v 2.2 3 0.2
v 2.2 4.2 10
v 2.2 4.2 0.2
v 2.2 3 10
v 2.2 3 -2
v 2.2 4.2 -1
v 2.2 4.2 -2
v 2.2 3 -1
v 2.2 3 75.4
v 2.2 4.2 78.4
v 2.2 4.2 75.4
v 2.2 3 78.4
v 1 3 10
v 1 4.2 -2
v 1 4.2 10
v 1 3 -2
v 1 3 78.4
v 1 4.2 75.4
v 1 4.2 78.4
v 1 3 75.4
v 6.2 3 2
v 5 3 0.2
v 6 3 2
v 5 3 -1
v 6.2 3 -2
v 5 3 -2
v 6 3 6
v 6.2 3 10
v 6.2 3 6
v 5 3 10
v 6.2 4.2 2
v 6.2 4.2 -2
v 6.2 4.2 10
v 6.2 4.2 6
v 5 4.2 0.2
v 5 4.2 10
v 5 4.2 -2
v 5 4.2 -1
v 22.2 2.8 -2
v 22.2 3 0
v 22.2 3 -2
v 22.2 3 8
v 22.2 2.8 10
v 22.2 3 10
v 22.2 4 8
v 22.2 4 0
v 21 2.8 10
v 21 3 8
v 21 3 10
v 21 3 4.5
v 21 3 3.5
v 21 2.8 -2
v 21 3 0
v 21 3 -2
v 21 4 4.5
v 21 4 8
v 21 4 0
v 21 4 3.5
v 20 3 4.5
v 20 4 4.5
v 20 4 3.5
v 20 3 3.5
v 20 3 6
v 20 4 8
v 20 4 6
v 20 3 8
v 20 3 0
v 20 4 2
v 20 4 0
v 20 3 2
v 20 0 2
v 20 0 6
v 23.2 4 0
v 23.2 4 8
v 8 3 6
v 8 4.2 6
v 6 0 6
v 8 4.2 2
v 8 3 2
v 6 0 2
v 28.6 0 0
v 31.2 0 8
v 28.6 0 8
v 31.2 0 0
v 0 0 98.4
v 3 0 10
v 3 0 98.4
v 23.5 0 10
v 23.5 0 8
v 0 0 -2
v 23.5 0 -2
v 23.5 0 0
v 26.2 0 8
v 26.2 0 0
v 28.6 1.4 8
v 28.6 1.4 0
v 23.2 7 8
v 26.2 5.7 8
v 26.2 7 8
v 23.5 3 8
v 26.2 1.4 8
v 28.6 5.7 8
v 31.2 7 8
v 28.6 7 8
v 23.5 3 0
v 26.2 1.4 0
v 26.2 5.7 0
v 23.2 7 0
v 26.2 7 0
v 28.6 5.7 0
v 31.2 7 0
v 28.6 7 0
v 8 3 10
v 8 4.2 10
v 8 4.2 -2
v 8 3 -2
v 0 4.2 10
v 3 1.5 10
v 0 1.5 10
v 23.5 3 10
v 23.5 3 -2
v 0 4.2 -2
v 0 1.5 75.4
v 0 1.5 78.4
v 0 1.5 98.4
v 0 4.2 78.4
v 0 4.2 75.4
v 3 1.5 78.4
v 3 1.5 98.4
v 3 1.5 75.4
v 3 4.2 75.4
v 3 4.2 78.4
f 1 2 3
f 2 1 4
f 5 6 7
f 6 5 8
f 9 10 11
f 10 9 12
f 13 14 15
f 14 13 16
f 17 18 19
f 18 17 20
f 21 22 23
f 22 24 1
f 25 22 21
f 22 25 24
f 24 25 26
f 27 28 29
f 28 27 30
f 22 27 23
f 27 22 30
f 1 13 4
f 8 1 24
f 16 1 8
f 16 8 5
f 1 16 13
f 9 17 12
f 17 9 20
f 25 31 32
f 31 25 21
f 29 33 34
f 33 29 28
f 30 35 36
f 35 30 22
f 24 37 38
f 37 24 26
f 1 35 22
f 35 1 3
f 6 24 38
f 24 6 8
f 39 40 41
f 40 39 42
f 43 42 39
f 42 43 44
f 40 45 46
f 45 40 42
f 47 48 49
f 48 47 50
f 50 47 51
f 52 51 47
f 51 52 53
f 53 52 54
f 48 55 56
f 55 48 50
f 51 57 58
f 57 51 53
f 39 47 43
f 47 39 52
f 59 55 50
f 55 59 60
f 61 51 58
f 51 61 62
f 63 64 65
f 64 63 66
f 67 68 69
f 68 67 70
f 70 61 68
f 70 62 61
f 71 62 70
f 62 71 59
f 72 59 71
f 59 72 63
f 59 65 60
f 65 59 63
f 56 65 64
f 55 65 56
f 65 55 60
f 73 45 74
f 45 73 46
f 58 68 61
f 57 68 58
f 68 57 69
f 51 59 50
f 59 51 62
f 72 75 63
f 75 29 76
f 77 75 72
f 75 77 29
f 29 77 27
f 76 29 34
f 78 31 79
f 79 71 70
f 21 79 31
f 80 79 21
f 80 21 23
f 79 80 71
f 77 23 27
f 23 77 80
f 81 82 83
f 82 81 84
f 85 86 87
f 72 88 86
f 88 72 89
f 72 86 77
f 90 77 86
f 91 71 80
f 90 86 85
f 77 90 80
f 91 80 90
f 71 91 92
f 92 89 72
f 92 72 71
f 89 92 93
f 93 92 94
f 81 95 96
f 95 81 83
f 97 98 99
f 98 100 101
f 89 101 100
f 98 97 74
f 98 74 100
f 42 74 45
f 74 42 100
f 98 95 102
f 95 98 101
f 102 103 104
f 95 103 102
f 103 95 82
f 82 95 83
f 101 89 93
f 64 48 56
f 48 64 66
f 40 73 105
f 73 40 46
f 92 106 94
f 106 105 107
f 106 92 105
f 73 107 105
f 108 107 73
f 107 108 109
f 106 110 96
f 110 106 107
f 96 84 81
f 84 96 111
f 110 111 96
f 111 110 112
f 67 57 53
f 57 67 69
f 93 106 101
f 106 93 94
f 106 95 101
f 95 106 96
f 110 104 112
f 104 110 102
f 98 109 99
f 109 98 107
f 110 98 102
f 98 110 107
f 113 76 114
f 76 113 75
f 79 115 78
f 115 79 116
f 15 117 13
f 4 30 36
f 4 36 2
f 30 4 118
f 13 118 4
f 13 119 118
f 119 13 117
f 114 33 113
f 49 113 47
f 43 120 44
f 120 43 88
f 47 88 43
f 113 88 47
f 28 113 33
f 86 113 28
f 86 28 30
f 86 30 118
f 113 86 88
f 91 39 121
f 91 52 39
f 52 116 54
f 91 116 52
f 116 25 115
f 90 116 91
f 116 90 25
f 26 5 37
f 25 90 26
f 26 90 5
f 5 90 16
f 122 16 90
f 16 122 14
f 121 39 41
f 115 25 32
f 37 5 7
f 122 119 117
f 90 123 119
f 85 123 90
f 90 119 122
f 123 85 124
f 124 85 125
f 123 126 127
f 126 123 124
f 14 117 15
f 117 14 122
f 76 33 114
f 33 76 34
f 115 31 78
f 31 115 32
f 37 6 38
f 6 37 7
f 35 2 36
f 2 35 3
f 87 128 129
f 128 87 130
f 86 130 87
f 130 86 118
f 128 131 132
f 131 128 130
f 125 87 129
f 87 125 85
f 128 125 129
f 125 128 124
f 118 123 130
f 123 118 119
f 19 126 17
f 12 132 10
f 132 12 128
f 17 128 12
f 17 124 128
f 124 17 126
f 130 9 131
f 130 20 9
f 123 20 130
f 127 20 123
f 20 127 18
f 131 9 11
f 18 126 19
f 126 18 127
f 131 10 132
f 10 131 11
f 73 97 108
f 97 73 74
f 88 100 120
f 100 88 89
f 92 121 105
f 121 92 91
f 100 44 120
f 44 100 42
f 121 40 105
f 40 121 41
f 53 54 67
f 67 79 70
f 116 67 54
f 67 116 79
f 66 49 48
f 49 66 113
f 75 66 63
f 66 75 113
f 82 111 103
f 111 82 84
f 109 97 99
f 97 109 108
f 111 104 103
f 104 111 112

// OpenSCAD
//  Support Antenne Type J Pole V1
//   réglable
// Par Rpx màj du 5/9/2018

fil=1.2;			// diametre du fil
supp=fil+(2*1);//épaisseur supports

render(convexity = 10) {

difference() {

// Partie pleine
union() {
//Ecart diplole centre
translate([0,0,-2]){
cube(size = [8,3+fil,12], center = false);
}
//Branche diplole inf
//translate([0,0,-30]){
//cube(size = [3,1.5,29], center = false);
//}
//Support diplole inf
//translate([0,0,-25]){
//cube(size = [3,3+fil,3], center = false);
//}
//Branche diplole sup
translate([0,0,(2*fil)+6]){
cube(size = [3,1.5,90], center = false);
}
//Support diplole sup
translate([0,0,(2*fil)+6+70-3]){
cube(size = [3,3+fil,3], center = false);
}
//Support reflecteur
translate([20,0,0]){
cube(size = [supp,(4+2)/2+1,8], center = false);
}
//Support liaison & arrière
translate([0,0,-2]){
cube(size = [23.5,3,8], center = false);
}
translate([0,0,-2]){
cube(size = [23.5,3,12], center = false);
}
translate([20+supp,0,0]){
cube(size = [8,7,8], center = false);
}
}  // Fin union Partie pleine

// Partie Creuse
union() {
//Perforations
// J Branche longue
translate([1,3,-5]){
cube(size = [fil,fil+0.2,100], center = false);
}
// J Branche courte
translate([5,3,-5]){
cube(size = [fil,fil+0.2,40], center = false);
}
//Zone Feed Point
translate([1,3,-1]){
cube(size = [5,fil+0.2,fil], center = false);
}


//DIPOLE horizontal 1
//translate([1,3,2]){
//cube(size = [6.2,fil+0.1,fil], center = false);
//}
//DIPOLE horizontal 2
//translate([1,3,5]){
//cube(size = [6.2,fil+0.1,fil], center = false);
//}
//reflecteur 
translate([1+20,3-0.2,-5]){
cube(size = [fil,fil+0.25,22], center = false);
}
//& marque axe
translate([20,3,3.5]){
cube(size = [1,1,1], center = false);
}
//Creux Bome reflecteur
translate([6,0,2]){
cube(size = [14,5,4], center = false);
}
//Trace
//Creux Support arrière
translate([supp+23,0,0]){
cube(size = [2.4,1.4,8], center = false);
}
translate([supp+23,6-0.3,0]){
cube(size = [2.4,1.4,8], center = false);
}
} // Fin union Partie Creuse

} // Fin difference
} // Fin render
